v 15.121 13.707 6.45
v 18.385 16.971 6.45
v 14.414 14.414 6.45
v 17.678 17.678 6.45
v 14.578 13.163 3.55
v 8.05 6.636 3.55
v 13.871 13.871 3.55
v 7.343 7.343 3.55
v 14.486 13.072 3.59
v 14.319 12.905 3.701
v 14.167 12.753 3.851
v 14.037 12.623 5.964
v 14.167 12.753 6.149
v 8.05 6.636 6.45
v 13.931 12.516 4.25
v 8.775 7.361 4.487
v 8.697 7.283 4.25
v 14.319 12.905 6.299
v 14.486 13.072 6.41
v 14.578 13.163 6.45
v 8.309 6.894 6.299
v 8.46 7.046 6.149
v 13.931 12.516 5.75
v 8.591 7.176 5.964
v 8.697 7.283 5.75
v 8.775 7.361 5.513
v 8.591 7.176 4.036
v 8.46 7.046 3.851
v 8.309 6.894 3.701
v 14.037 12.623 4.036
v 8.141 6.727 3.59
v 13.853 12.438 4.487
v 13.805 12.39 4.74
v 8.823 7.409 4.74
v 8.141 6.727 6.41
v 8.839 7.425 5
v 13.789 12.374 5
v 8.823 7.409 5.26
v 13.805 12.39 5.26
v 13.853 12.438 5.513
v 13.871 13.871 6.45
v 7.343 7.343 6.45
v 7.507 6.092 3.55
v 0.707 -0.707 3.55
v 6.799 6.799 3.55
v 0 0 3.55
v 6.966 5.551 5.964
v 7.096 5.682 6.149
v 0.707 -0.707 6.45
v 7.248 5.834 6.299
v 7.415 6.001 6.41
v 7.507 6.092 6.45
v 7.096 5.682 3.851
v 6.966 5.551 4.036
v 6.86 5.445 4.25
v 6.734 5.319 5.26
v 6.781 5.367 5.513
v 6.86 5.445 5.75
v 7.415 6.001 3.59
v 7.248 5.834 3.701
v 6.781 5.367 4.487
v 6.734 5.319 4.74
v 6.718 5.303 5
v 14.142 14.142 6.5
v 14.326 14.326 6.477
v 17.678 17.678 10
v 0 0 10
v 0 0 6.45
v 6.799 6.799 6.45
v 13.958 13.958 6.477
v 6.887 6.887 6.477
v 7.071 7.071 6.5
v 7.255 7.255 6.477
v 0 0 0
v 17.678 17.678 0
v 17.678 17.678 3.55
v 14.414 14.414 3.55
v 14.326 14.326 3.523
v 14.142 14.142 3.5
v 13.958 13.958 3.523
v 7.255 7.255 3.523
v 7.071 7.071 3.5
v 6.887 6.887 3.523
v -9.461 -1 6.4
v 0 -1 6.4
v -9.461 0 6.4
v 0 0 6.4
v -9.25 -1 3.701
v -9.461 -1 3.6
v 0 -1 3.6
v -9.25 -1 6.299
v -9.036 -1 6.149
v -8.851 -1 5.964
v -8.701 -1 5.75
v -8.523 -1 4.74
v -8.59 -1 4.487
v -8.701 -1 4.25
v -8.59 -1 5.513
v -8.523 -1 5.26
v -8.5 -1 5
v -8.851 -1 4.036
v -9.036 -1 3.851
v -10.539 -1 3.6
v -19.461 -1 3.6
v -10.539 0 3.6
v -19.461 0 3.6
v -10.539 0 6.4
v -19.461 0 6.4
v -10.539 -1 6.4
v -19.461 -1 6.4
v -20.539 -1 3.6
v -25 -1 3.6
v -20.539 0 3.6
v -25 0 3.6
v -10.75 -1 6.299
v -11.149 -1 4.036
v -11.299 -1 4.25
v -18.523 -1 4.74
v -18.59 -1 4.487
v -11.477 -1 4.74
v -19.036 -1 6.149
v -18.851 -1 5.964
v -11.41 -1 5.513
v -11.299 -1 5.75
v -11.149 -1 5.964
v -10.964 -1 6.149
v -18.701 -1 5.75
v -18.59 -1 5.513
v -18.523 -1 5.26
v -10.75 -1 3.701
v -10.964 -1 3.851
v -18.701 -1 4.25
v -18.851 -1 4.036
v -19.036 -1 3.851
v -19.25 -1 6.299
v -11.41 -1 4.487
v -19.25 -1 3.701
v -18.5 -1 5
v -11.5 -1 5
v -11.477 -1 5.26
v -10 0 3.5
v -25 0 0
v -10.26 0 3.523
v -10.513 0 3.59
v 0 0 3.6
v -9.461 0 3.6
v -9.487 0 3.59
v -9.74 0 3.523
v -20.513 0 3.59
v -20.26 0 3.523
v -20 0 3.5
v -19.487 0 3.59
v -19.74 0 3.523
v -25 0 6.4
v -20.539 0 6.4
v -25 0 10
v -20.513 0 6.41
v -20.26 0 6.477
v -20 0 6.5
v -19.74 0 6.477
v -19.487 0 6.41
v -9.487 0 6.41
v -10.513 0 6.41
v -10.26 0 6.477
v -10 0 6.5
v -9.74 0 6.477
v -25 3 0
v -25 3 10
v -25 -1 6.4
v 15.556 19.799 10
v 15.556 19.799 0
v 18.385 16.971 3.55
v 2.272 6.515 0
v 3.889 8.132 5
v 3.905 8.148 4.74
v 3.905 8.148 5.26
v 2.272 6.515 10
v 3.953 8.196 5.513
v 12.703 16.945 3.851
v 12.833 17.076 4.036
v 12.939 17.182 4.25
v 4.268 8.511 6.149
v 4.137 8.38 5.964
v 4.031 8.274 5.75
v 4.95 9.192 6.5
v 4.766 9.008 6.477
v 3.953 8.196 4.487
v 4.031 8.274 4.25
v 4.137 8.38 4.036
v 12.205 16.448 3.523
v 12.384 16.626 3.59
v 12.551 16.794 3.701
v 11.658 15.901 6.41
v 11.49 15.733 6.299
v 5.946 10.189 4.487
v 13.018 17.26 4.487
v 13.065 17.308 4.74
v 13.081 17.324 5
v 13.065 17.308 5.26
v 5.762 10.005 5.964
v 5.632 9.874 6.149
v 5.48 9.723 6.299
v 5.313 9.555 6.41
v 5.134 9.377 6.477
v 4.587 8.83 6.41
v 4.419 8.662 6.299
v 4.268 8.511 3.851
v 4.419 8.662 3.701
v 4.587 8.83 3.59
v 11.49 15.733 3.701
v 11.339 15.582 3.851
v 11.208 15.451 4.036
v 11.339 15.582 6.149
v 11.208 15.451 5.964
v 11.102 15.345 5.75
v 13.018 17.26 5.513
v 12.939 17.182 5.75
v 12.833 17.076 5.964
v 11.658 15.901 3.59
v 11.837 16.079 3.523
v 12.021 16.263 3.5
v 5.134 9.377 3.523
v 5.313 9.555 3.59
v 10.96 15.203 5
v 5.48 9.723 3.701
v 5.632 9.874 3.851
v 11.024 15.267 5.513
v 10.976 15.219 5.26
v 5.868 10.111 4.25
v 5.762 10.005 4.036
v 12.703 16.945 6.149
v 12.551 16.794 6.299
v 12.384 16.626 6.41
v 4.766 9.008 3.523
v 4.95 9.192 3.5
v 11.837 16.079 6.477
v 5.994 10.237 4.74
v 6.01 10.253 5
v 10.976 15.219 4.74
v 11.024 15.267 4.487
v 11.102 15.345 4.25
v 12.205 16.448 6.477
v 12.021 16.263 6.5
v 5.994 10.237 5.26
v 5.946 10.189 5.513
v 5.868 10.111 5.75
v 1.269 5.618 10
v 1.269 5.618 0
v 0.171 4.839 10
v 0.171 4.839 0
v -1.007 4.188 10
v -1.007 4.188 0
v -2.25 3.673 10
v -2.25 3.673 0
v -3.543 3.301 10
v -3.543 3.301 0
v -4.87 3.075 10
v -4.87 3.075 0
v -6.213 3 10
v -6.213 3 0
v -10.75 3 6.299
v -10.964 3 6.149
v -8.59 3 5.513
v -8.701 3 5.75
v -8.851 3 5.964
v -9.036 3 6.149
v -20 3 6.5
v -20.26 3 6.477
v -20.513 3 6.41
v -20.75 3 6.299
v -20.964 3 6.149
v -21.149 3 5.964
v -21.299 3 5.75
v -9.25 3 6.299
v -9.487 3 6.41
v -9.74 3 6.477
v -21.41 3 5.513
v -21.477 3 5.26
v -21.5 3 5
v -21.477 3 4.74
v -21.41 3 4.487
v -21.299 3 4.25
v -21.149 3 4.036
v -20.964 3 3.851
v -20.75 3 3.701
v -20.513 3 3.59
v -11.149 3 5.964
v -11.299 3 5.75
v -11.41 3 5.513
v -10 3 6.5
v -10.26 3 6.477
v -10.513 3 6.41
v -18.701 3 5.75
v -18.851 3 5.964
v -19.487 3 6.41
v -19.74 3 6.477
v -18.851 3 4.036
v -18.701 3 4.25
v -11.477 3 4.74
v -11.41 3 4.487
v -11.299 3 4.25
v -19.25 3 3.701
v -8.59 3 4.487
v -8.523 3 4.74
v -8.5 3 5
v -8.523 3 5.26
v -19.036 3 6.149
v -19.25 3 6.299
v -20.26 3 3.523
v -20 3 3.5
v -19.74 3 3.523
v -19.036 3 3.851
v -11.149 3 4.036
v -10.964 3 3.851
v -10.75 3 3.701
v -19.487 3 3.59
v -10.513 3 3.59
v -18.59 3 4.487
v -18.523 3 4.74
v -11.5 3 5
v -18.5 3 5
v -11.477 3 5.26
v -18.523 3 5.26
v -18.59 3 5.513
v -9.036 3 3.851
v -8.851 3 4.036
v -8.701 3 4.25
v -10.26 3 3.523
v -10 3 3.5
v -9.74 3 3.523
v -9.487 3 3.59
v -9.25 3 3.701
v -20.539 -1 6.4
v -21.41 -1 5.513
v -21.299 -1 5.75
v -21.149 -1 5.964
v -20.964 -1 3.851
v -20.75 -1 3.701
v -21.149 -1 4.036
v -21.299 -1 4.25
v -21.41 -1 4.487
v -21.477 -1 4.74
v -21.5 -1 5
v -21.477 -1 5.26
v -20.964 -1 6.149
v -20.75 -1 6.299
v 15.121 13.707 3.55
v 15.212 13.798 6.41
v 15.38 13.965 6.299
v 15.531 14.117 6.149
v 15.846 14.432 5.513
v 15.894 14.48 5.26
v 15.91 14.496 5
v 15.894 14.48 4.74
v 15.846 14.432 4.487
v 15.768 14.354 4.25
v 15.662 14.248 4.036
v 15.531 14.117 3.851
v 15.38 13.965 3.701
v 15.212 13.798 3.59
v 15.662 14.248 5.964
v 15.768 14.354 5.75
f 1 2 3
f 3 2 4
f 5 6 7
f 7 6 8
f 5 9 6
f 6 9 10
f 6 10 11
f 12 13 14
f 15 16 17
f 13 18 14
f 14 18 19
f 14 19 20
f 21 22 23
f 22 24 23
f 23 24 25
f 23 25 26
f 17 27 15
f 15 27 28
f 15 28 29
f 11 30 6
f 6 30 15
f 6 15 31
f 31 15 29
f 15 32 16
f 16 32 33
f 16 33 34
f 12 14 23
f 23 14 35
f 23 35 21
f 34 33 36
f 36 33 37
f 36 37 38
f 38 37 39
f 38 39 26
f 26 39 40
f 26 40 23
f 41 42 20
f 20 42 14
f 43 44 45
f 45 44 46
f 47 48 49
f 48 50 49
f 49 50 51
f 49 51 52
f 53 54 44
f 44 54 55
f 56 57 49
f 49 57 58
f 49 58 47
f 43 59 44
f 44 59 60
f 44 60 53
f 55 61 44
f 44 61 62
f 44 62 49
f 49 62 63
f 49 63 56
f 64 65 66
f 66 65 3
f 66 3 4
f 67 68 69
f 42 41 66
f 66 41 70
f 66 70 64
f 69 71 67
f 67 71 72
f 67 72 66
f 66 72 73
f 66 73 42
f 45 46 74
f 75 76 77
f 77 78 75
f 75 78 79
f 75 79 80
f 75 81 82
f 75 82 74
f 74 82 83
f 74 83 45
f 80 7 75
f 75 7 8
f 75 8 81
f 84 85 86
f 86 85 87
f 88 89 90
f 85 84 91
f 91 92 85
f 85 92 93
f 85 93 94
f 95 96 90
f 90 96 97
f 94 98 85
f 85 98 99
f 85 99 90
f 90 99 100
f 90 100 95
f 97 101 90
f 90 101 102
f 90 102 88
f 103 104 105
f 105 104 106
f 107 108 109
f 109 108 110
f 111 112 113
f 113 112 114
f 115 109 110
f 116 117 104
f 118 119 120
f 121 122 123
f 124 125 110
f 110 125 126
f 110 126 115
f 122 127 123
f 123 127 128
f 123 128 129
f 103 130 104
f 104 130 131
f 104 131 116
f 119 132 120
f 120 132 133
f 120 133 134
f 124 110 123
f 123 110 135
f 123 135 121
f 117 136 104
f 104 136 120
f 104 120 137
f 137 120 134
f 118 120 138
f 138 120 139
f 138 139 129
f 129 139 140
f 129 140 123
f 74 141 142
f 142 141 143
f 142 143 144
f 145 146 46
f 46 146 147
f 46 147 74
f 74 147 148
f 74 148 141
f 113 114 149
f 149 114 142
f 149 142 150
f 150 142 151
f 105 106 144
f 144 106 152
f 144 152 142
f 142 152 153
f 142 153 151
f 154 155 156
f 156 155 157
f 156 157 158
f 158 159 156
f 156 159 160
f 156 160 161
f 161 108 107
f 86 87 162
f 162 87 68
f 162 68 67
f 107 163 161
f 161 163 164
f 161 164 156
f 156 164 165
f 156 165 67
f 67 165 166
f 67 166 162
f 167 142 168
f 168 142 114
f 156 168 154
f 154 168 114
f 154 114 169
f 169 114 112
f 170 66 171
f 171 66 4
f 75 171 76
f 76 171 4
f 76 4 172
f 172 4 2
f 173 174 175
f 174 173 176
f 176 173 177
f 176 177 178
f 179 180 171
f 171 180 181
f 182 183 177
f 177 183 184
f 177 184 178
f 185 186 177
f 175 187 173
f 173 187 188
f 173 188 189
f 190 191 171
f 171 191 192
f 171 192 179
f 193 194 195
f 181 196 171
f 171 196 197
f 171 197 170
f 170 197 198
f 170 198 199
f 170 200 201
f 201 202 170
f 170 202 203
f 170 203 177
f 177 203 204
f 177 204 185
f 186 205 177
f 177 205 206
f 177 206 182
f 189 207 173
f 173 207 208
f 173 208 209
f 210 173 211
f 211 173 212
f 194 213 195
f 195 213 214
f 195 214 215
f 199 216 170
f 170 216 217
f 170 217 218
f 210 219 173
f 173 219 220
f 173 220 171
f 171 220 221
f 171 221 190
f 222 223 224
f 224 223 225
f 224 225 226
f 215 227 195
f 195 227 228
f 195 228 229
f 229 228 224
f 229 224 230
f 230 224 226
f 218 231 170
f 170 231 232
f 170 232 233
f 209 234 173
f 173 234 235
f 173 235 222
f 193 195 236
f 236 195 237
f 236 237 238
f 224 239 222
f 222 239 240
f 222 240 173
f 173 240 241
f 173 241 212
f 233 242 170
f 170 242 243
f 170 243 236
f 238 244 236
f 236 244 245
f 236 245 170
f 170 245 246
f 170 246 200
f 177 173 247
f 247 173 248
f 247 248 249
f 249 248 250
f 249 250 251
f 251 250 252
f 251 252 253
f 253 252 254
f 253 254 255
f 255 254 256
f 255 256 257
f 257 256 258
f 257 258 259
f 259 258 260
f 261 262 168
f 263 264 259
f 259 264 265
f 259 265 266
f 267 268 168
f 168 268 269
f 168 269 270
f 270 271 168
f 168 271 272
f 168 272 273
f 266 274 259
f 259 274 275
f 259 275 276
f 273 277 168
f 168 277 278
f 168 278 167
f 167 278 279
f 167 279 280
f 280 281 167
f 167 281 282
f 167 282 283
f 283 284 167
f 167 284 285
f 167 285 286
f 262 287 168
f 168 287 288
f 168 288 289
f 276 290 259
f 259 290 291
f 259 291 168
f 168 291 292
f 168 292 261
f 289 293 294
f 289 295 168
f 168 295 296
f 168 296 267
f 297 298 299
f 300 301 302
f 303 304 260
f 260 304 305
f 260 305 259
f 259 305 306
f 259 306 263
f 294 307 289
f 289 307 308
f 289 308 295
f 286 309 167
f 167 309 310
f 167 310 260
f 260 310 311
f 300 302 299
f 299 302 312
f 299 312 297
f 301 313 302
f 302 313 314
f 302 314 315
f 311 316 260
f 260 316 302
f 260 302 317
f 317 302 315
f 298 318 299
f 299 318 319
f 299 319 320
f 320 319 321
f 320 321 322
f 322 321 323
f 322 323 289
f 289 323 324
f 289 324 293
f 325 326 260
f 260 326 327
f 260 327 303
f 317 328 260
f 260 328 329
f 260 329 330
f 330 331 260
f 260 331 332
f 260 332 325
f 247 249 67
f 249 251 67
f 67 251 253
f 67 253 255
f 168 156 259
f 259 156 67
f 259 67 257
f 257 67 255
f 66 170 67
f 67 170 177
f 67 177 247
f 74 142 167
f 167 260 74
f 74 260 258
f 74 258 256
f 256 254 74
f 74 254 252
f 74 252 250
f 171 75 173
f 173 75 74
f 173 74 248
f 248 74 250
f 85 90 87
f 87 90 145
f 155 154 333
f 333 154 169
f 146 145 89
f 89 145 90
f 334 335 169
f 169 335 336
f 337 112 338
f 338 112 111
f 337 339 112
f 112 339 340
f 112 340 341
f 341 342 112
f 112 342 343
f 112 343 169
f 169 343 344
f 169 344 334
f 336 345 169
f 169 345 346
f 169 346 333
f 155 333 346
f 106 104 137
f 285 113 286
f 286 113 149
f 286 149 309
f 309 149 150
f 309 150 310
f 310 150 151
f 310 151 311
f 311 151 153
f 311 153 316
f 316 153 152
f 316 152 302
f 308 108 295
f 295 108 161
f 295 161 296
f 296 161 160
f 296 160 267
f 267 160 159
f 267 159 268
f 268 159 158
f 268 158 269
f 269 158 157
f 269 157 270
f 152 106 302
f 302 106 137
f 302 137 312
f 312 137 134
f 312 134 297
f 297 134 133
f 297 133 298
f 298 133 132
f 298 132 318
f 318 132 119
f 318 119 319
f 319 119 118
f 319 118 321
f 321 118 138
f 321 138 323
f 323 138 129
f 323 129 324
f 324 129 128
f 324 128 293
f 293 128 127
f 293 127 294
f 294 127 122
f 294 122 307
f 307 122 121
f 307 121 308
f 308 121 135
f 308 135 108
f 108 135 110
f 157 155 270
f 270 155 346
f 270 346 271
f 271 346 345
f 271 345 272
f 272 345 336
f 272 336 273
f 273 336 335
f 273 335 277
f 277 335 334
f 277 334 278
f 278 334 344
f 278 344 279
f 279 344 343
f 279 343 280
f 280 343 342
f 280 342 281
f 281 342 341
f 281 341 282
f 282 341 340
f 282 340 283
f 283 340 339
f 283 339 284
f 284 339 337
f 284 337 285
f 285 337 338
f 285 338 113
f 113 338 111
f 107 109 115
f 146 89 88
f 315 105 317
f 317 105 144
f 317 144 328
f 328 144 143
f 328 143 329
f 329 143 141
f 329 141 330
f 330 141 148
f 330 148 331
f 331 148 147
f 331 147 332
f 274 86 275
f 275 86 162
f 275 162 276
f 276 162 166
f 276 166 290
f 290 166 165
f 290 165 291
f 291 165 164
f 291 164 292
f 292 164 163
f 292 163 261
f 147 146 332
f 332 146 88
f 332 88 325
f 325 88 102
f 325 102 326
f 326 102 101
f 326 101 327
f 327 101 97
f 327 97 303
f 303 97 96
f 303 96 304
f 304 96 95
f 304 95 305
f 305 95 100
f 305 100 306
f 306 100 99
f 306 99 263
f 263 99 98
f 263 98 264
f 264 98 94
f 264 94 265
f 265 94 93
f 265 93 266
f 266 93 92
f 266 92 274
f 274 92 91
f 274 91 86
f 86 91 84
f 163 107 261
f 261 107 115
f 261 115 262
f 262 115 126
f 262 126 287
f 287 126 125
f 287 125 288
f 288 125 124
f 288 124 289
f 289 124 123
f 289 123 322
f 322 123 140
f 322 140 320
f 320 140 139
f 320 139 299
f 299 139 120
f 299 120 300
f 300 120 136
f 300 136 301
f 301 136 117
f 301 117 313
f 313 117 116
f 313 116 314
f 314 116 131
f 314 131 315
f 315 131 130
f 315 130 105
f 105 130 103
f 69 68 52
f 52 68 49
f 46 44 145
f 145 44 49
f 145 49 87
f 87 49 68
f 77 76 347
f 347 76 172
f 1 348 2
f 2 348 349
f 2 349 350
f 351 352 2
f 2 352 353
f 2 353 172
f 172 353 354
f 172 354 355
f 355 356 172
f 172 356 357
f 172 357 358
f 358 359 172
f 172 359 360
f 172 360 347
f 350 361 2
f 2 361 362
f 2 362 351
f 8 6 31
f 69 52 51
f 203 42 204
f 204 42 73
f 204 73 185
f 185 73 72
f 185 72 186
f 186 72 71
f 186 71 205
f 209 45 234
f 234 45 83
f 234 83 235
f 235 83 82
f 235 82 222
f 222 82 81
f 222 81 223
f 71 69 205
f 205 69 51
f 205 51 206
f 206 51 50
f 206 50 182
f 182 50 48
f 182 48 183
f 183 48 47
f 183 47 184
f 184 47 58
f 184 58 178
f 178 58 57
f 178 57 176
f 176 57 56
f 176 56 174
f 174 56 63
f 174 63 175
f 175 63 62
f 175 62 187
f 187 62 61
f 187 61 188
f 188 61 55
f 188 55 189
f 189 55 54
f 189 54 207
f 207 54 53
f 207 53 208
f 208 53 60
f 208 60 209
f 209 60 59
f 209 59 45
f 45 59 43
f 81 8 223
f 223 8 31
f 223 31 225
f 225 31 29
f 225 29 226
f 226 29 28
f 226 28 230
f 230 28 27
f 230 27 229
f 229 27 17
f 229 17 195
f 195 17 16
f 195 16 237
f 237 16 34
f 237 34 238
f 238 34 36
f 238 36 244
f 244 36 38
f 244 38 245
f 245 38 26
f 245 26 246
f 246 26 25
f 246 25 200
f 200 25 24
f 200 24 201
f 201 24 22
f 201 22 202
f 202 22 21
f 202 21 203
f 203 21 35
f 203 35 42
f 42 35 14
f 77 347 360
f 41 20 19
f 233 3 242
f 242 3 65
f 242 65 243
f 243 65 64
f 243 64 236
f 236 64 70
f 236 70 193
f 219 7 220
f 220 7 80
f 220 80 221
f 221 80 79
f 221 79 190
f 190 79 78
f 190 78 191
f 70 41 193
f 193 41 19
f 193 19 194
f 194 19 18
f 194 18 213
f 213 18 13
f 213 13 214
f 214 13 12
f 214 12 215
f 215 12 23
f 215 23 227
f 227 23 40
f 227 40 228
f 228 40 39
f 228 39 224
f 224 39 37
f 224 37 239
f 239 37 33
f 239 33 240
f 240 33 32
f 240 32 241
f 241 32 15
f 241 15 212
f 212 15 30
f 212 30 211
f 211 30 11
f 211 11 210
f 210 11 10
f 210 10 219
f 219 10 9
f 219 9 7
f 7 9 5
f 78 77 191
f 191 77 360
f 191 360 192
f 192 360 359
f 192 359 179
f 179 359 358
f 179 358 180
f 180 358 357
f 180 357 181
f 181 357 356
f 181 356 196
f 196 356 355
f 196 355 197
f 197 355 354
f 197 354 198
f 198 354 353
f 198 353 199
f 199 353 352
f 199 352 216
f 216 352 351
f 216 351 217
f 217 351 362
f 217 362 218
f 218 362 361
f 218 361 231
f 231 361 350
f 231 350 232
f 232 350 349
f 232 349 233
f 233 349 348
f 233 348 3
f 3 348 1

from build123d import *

# Parameters (mm, degrees)
BOSS_EXTRU_1_DEPTH           = 10
ESQUISSE4_W                  = 25
ESQUISSE4_H                  = 2.8
BOSS_EXTRU_2_DEPTH           = 1
ESQUISSE2_R                  = 1.5
ENL_V_MAT_EXTRU_1_DEPTH      = 34.421549934
ENL_V_MAT_EXTRU_1_DEPTH_BACK = 34.421549934
ESQUISSE5_W                  = 2.9
ESQUISSE5_H                  = 25
BOSS_EXTRU_3_DEPTH           = 1
ESQUISSE3_R                  = 1.5
ENL_V_MAT_EXTRU_2_DEPTH      = 34.421549934
ENL_V_MAT_EXTRU_2_DEPTH_BACK = 34.421549934


with BuildPart() as part:
    # Esquisse1 → Boss.-Extru.1 (new body)
    with BuildSketch(Plane.XY):
        with BuildLine():
            Line((-25, 0), (0, 0))
            Line((0, 0), (17.67766953, 17.67766953))
            Line((17.67766953, 17.67766953), (15.556349186, 19.798989873))
            Line((15.556349186, 19.798989873), (2.272077939, 6.514718626))
            ThreePointArc((2.272077939, 6.514718626), (-1.621002247, 3.91344561), (-6.213203436, 3))
            Line((-6.213203436, 3), (-25, 3))
            Line((-25, 3), (-25, 0))
        make_face()
    extrude(amount=BOSS_EXTRU_1_DEPTH)

    # Esquisse4 → Boss.-Extru.2 (add)
    with BuildSketch(Plane(origin=(0, 0, 0), x_dir=(-1, 0, 0), z_dir=(0, -1, 0))):
        with Locations((12.5, -5)):
            Rectangle(ESQUISSE4_W, ESQUISSE4_H)
    extrude(amount=BOSS_EXTRU_2_DEPTH)

    # Esquisse2 → Enlèv. mat.-Extru.1 (cut, two sides)
    with BuildSketch(Plane.XZ) as enl_v_mat_extru_1_sk:
        with Locations(Location((-20, 5, 0), (0, 0, 270))):
            Circle(ESQUISSE2_R)
        with Locations(Location((-10, 5, 0), (0, 0, 270))):
            Circle(ESQUISSE2_R)
    extrude(amount=ENL_V_MAT_EXTRU_1_DEPTH, mode=Mode.SUBTRACT)
    extrude(enl_v_mat_extru_1_sk.sketch, amount=-ENL_V_MAT_EXTRU_1_DEPTH_BACK, mode=Mode.SUBTRACT)

    # Esquisse5 → Boss.-Extru.3 (add)
    with BuildSketch(Plane(origin=(0, 0, 0), x_dir=(0, 0, -1), z_dir=(0.7071067811865485, -0.7071067811865466, 0))):
        with Locations((-5, 12.5)):
            Rectangle(ESQUISSE5_W, ESQUISSE5_H)
    extrude(amount=BOSS_EXTRU_3_DEPTH)

    # Esquisse3 → Enlèv. mat.-Extru.2 (cut, two sides)
    with BuildSketch(Plane(origin=(0, 0, 0), x_dir=(0, 0, -1), z_dir=(0.7071067811865485, -0.7071067811865466, 0))) as enl_v_mat_extru_2_sk:
        with Locations(Location((-5, 10, 0), (0, 0, 90))):
            Circle(ESQUISSE3_R)
        with Locations(Location((-5, 20, 0), (0, 0, 90))):
            Circle(ESQUISSE3_R)
    extrude(amount=ENL_V_MAT_EXTRU_2_DEPTH, mode=Mode.SUBTRACT)
    extrude(enl_v_mat_extru_2_sk.sketch, amount=-ENL_V_MAT_EXTRU_2_DEPTH_BACK, mode=Mode.SUBTRACT)


solid = part.part
